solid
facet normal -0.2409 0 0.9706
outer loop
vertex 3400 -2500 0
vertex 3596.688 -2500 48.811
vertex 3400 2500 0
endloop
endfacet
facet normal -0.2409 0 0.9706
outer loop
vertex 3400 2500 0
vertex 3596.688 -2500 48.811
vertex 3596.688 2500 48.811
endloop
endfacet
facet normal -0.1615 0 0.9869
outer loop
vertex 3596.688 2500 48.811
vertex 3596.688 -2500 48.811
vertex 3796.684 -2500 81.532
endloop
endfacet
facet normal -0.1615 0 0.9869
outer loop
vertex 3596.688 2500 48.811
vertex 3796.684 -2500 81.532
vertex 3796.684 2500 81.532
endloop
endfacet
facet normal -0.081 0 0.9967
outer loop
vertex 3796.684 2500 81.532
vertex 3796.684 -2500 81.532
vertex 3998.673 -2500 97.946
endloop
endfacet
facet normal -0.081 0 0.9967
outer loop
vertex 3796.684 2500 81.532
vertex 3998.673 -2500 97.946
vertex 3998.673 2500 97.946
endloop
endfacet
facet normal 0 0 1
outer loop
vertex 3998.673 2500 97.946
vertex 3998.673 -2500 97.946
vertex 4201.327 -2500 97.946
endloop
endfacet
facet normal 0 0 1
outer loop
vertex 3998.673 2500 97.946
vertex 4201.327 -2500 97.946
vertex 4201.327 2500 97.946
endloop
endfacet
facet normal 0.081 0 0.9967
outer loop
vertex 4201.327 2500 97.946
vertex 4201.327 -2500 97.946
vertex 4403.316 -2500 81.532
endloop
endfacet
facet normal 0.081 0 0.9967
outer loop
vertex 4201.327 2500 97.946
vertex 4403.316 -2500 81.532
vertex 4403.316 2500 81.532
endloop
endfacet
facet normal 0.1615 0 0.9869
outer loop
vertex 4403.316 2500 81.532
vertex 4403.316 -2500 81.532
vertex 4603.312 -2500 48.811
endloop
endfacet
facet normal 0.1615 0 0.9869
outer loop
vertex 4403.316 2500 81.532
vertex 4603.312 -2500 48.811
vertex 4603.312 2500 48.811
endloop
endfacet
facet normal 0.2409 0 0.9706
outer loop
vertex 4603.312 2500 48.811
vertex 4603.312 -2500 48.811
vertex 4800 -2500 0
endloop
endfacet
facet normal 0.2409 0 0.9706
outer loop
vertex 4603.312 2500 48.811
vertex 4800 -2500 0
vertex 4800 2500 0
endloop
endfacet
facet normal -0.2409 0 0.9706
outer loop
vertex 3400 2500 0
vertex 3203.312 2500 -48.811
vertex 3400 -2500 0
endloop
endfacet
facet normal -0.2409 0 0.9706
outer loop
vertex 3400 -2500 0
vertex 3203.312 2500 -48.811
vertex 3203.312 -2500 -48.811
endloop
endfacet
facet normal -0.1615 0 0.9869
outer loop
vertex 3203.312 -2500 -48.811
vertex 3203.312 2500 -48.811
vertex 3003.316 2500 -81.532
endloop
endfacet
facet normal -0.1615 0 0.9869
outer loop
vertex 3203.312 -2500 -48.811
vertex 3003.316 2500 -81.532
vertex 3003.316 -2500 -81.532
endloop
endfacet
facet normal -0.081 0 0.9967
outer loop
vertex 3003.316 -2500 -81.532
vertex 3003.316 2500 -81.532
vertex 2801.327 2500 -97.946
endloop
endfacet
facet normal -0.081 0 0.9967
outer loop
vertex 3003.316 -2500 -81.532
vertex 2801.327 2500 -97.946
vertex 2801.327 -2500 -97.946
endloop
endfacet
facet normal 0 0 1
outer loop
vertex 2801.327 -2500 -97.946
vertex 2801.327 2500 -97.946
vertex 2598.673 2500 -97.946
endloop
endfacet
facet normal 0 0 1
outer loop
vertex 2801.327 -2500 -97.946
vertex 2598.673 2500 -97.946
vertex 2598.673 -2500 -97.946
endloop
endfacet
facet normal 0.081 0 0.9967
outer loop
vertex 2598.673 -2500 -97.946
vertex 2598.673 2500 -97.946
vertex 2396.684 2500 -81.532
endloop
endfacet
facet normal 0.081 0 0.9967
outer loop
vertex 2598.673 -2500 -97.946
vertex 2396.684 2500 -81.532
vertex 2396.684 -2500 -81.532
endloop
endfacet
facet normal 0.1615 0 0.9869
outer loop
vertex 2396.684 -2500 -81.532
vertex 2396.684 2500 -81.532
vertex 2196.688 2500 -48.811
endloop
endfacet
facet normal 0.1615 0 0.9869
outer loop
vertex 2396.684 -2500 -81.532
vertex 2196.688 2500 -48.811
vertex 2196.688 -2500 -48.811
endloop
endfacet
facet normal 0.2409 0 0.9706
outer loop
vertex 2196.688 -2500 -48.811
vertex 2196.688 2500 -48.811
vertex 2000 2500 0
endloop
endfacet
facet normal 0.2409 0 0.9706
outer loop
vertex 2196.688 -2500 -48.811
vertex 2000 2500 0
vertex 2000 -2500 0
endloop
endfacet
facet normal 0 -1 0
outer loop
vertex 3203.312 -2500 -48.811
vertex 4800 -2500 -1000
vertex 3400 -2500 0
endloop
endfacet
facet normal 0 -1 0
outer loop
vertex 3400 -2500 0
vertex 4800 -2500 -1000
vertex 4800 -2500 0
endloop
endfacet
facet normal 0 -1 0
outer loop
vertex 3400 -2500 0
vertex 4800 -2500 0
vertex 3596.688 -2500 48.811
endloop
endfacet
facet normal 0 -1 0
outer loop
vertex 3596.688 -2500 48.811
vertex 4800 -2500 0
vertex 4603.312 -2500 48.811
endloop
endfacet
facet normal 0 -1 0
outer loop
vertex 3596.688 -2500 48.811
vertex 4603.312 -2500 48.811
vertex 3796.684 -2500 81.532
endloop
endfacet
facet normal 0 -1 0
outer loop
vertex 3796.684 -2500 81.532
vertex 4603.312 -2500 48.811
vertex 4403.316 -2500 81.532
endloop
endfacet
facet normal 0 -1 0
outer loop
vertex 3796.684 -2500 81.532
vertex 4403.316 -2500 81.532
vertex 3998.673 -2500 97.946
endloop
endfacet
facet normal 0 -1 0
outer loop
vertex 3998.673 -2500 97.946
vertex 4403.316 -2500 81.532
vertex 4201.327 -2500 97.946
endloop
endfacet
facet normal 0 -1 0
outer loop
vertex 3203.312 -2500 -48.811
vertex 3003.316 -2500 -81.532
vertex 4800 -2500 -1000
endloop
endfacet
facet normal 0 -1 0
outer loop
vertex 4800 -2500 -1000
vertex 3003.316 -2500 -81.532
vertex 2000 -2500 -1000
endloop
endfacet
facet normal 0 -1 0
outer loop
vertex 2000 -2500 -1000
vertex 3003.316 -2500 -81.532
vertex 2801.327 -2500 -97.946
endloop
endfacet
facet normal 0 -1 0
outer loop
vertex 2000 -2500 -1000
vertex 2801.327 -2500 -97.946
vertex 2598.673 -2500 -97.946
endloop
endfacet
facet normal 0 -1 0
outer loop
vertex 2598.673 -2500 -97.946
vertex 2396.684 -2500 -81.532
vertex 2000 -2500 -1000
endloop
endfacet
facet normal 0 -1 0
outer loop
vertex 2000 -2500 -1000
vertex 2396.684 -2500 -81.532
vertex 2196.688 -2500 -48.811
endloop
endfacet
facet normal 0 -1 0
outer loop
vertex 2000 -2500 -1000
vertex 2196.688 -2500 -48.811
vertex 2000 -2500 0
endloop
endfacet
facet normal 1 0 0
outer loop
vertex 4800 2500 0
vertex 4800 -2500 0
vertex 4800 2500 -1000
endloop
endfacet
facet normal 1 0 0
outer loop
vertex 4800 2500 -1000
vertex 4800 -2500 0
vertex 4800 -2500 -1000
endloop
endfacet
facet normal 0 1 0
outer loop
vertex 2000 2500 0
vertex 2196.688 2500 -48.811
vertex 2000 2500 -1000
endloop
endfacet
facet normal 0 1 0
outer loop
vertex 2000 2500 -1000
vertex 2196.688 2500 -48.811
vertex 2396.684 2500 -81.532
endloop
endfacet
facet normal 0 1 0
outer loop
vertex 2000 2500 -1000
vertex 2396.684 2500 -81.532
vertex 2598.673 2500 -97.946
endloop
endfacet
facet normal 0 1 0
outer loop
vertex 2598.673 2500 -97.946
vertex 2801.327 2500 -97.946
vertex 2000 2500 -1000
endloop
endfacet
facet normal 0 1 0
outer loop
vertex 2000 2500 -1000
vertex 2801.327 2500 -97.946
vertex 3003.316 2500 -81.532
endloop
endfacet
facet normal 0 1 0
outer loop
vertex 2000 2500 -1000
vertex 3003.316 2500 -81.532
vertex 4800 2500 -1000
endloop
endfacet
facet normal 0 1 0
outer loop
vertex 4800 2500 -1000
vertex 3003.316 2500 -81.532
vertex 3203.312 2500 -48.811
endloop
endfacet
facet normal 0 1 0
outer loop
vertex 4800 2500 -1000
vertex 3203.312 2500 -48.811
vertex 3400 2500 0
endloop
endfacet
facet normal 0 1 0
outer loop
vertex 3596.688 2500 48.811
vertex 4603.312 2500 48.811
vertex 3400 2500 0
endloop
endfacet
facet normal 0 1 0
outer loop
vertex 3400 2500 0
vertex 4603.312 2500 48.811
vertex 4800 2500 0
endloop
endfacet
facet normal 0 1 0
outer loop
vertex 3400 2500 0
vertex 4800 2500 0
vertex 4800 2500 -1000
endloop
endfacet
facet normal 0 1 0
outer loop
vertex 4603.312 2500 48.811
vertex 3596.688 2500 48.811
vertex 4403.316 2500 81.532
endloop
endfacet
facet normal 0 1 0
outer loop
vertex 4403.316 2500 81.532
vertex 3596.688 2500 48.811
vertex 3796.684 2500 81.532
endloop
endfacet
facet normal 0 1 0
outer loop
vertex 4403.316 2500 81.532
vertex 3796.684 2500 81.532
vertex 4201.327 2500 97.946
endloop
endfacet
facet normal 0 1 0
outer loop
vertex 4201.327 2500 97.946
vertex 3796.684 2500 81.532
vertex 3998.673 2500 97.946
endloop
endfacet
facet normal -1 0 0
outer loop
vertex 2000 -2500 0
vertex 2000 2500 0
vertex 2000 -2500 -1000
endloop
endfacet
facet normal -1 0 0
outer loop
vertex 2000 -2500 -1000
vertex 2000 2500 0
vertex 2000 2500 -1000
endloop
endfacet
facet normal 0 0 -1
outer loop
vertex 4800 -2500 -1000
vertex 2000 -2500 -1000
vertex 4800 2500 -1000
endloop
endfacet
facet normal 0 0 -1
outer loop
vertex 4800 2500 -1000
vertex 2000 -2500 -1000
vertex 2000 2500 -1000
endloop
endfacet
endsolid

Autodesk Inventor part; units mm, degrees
ref_plane "YZ Plane" through (0, 0, 0) normal (1, 0, 0) x (0, 1, 0)
ref_plane "XZ Plane" through (0, 0, 0) normal (0, 1, 0) x (-1, 0, 0)
ref_plane "XY Plane" through (0, 0, 0) normal (0, 0, 1) x (1, 0, 0)
sketch "スケッチ1" plane through (0, 0, 0) normal (0, 0, 1) x (1, 0, 0)
  line L0 (2000, 2500) -> (4800, 2500)
  line L1 (4800, 2500) -> (4800, -2500)
  line L2 (4800, -2500) -> (2000, -2500)
  line L3 (2000, -2500) -> (2000, 2500)
  point P0 (0, 0)
  point P1 (2000, 0)
  dimension "d2" = 5000
  dimension "d5" = 2000
  dimension "d6" = 2800
extrude "押し出し1" add sketch "スケッチ1" against normal blind 1000
sketch "スケッチ2" plane through (2000, -2500, 0) normal (0, -1, 0) x (1, 0, 0)
  circle A0 centre (700, 2400) radius 2500
  line L0 (0, 0) -> (2800, 0) projected
  point P0 (-2000, 0)
  point P1 (1400, 0)
  dimension "d7" = 5000
extrude "押し出し2" cut sketch "スケッチ2" against normal through all
sketch "スケッチ3" plane through (2000, -2500, -1000) normal (0, -1, 0) x (1, 0, 0)
  line L0 (2800, 1000) -> (1400, 1000) projected
  circle A0 centre (2100, -1400) radius 2500
  point P0 (-2000, 1000)
  dimension "d10" = 5000
extrude "押し出し3" add sketch "スケッチ3" against normal blind 5000 contours L0 A0 picked at (1910.2312, 1011.4384)
properties part number "Ground2"
